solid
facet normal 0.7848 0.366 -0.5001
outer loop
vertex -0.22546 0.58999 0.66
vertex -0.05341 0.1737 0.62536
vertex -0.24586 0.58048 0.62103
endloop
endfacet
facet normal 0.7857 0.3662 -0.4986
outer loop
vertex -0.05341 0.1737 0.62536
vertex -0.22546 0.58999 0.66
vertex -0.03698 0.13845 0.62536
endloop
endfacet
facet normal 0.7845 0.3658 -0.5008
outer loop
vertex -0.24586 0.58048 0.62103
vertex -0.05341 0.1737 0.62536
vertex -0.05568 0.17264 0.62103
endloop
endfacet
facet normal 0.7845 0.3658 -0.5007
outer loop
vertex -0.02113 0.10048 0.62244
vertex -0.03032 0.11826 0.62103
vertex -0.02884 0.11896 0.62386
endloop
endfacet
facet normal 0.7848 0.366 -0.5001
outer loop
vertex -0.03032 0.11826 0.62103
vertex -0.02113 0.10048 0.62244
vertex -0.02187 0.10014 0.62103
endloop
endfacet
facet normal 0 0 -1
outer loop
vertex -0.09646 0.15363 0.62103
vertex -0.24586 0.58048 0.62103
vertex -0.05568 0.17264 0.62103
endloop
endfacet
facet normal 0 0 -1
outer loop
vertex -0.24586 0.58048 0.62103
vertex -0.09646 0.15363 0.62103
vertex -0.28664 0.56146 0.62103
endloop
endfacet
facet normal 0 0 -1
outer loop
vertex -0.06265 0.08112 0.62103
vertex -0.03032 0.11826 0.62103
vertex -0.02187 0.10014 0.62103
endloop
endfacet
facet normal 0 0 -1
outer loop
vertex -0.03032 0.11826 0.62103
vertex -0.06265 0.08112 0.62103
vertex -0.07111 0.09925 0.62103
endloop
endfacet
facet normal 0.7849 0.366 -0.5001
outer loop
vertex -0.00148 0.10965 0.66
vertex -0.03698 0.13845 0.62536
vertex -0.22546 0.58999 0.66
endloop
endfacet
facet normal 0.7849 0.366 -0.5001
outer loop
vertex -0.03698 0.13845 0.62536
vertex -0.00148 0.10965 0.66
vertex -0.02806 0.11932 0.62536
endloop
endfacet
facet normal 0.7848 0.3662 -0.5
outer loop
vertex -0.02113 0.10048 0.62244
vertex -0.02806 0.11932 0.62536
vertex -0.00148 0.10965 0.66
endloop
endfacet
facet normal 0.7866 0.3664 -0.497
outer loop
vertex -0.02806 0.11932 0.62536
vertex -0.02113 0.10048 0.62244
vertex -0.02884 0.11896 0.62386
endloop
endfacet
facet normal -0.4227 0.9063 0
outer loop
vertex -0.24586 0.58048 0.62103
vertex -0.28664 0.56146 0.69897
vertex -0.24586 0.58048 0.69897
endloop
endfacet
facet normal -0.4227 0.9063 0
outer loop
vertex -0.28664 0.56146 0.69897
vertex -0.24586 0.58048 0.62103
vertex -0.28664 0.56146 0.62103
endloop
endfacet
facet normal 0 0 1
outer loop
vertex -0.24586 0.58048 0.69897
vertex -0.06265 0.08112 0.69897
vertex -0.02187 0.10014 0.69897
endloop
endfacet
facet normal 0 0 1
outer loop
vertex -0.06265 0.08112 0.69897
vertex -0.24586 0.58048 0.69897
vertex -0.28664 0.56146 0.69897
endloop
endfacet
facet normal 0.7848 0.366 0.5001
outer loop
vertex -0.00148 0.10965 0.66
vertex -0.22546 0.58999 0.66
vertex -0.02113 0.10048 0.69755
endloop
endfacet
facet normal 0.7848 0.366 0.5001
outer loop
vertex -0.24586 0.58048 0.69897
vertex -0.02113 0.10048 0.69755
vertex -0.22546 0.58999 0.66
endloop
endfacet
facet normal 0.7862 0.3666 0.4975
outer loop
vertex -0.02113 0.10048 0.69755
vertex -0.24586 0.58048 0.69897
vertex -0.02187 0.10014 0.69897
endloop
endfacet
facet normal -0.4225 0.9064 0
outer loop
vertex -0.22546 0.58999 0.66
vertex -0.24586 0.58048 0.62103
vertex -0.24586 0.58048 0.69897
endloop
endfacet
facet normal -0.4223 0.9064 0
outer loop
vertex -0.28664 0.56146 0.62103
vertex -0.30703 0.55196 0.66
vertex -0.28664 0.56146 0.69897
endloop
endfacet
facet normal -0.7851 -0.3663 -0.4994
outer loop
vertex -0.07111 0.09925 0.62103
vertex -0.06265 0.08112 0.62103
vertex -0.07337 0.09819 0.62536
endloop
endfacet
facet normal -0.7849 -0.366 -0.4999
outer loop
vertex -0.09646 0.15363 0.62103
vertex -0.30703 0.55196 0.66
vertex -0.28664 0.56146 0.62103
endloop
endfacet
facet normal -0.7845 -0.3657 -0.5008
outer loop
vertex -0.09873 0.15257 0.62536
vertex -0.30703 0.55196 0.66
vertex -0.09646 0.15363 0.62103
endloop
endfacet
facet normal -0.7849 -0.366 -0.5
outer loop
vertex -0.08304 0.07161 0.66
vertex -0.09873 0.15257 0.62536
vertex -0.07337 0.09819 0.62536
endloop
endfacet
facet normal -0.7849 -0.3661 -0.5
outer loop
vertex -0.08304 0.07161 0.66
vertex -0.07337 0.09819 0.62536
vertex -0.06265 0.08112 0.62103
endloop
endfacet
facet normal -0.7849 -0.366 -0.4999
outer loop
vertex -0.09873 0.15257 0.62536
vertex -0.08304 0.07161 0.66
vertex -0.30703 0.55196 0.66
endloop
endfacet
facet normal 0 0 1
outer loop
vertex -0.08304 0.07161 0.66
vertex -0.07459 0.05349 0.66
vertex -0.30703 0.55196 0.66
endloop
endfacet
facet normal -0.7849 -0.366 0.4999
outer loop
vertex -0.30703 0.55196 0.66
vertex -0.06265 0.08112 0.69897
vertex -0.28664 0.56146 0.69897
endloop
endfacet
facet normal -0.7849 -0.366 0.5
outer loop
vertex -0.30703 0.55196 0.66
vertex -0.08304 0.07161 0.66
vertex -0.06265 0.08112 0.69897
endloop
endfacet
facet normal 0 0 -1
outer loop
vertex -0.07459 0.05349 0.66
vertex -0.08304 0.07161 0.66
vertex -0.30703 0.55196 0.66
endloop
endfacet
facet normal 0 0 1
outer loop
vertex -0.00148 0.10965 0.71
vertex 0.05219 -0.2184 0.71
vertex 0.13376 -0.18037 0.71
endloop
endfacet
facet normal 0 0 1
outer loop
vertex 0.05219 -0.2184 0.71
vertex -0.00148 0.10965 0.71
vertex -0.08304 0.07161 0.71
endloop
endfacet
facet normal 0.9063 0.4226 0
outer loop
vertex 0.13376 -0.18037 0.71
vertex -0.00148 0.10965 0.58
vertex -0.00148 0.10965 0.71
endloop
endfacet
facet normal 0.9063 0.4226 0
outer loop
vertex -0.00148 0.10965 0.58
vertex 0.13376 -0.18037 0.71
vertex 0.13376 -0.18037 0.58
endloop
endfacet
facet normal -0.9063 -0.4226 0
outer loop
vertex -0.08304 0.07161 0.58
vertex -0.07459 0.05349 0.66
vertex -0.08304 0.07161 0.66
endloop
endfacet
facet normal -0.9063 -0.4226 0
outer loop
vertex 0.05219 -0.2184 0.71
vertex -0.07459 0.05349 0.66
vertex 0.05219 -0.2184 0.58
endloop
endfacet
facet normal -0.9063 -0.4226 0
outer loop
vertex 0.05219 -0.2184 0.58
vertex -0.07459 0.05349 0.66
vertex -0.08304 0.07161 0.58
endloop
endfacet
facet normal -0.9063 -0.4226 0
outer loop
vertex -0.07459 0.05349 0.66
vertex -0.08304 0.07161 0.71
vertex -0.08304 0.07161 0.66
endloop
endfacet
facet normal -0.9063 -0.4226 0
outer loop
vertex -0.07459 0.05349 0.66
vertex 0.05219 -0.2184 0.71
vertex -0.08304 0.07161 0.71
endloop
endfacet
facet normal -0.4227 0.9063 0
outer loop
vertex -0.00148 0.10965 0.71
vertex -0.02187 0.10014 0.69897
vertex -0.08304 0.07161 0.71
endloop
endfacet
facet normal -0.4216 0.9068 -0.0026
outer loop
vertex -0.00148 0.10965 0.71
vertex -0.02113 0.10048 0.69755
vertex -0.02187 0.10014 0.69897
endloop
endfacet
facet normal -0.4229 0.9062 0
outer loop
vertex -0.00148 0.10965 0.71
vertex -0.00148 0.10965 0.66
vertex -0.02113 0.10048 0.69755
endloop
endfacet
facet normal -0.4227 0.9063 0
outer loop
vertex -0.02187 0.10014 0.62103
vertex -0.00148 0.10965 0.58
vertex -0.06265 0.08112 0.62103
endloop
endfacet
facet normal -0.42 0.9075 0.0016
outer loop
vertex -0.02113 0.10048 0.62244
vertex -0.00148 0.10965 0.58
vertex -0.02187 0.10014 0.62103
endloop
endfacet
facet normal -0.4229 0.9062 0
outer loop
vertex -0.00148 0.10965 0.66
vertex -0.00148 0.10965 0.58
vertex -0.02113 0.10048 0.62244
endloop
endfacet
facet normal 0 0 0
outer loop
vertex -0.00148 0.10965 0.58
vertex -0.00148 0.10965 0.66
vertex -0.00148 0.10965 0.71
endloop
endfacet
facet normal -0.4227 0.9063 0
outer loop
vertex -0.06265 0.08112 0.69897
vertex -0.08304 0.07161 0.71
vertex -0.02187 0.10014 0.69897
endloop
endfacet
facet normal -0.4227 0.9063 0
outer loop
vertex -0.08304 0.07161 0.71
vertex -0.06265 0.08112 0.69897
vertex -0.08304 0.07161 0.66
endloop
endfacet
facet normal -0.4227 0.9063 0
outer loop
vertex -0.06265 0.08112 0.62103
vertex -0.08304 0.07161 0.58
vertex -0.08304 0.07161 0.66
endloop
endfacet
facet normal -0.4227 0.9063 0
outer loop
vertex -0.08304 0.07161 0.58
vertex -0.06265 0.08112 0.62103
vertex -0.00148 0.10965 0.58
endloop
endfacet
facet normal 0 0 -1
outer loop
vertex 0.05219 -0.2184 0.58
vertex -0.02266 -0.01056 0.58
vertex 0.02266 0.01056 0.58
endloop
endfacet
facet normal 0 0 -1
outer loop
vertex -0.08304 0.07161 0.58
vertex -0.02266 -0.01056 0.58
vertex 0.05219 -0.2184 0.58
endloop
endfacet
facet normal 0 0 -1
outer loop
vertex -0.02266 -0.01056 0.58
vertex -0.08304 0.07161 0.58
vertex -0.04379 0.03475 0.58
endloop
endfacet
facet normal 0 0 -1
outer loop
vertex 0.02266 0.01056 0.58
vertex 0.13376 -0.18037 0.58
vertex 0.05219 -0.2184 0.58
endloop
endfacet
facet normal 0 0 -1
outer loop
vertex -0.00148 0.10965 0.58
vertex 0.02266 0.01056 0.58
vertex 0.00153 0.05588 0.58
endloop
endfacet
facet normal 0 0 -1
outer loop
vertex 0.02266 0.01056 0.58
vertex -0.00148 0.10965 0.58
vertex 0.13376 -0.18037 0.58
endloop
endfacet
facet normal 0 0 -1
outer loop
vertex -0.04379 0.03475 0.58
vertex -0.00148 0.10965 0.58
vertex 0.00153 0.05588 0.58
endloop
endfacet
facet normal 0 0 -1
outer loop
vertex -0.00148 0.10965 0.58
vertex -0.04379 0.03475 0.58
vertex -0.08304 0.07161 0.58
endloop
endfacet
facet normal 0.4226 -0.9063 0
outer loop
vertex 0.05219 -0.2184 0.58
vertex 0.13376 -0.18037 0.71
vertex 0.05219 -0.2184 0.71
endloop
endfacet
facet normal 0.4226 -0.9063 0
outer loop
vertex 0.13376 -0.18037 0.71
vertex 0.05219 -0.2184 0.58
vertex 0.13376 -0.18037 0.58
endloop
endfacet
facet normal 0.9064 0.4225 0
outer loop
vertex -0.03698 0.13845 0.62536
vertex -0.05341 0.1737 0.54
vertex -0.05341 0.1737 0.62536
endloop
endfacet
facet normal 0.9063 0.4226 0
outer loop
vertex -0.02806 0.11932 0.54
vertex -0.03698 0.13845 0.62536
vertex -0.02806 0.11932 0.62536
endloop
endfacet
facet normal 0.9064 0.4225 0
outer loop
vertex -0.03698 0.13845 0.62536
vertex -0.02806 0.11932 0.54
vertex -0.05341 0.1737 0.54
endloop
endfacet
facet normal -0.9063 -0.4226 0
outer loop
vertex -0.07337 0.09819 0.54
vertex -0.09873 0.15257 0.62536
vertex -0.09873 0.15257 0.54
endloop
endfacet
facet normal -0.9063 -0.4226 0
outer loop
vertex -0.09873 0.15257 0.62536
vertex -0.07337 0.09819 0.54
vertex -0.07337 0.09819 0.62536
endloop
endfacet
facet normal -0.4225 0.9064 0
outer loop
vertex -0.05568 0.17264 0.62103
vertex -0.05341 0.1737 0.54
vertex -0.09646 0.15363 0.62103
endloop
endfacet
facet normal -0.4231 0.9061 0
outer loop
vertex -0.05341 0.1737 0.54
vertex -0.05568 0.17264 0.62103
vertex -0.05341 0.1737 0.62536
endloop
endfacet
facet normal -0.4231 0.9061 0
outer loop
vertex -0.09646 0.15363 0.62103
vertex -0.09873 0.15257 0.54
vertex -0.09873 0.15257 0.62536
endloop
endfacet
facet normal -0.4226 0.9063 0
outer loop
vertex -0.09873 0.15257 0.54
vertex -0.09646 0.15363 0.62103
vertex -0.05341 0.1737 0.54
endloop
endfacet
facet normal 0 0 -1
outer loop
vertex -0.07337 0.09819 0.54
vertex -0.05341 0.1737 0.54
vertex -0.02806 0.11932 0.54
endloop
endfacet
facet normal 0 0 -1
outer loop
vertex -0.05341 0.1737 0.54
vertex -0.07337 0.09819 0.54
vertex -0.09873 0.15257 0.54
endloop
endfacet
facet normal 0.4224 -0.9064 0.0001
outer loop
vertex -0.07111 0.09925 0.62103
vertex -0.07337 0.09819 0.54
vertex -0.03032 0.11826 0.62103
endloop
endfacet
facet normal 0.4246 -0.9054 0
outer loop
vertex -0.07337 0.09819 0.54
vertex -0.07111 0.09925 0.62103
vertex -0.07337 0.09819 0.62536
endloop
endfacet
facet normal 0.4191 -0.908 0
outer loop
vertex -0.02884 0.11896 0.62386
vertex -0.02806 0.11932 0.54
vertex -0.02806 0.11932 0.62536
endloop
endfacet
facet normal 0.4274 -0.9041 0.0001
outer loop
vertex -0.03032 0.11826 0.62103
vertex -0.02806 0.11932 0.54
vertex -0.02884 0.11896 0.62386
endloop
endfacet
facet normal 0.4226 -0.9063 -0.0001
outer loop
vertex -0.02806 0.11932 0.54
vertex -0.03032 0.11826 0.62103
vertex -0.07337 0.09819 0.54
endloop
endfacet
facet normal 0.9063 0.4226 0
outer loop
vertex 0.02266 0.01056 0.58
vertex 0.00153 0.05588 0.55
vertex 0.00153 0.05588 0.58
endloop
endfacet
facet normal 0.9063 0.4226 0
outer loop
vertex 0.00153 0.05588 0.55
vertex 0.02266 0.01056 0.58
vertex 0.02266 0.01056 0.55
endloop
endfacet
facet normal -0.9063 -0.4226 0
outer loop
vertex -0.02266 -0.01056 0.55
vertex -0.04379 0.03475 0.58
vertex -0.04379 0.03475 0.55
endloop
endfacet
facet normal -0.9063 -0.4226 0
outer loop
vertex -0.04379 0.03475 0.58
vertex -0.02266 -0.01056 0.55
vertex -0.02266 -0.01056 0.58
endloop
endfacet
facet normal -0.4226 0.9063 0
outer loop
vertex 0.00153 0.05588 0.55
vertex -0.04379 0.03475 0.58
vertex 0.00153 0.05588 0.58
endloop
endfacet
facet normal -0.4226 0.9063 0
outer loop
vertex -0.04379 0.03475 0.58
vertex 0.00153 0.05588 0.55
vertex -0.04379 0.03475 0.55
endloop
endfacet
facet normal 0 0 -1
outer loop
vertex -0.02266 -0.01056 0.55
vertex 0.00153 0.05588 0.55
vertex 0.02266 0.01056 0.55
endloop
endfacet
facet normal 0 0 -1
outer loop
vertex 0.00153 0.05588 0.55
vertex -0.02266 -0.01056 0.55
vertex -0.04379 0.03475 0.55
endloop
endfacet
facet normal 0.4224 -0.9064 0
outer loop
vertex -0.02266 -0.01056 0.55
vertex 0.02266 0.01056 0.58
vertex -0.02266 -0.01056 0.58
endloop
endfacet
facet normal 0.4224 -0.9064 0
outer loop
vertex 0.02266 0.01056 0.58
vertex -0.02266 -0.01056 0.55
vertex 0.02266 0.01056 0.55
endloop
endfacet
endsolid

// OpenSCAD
union() {
  union() {
    union() {
      rotate([0, 0, 25.0]) {
        translate([0, 8.0e-2, 0]) {
          translate([0, 0, 0.66]) {
            rotate([-90.0, 0, 0]) {
              cylinder(h = 0.55, r = 4.5e-2, $fn = 6);
            }
          }
        }
      }
      rotate([0, 0, 25.0]) {
        translate([-4.5e-2, 0, 0]) {
          translate([0, -0.22, 0]) {
            translate([0, 0, 0.58]) {
              cube([9.0e-2, 0.32, 0.13]);
            }
          }
        }
      }
    }
    rotate([0, 0, 25.0]) {
      translate([-2.5e-2, 0, 0]) {
        translate([0, 0.12, 0]) {
          translate([0, 0, 0.54]) {
            cube([5.0e-2, 6.0e-2, 0.14]);
          }
        }
      }
    }
  }
  rotate([0, 0, 25.0]) {
    translate([-2.5e-2, 0, 0]) {
      translate([0, 0.0, 0]) {
        translate([0, 0, 0.55]) {
          cube([5.0e-2, 5.0e-2, 0.12]);
        }
      }
    }
  }
}
$fn = 50;
